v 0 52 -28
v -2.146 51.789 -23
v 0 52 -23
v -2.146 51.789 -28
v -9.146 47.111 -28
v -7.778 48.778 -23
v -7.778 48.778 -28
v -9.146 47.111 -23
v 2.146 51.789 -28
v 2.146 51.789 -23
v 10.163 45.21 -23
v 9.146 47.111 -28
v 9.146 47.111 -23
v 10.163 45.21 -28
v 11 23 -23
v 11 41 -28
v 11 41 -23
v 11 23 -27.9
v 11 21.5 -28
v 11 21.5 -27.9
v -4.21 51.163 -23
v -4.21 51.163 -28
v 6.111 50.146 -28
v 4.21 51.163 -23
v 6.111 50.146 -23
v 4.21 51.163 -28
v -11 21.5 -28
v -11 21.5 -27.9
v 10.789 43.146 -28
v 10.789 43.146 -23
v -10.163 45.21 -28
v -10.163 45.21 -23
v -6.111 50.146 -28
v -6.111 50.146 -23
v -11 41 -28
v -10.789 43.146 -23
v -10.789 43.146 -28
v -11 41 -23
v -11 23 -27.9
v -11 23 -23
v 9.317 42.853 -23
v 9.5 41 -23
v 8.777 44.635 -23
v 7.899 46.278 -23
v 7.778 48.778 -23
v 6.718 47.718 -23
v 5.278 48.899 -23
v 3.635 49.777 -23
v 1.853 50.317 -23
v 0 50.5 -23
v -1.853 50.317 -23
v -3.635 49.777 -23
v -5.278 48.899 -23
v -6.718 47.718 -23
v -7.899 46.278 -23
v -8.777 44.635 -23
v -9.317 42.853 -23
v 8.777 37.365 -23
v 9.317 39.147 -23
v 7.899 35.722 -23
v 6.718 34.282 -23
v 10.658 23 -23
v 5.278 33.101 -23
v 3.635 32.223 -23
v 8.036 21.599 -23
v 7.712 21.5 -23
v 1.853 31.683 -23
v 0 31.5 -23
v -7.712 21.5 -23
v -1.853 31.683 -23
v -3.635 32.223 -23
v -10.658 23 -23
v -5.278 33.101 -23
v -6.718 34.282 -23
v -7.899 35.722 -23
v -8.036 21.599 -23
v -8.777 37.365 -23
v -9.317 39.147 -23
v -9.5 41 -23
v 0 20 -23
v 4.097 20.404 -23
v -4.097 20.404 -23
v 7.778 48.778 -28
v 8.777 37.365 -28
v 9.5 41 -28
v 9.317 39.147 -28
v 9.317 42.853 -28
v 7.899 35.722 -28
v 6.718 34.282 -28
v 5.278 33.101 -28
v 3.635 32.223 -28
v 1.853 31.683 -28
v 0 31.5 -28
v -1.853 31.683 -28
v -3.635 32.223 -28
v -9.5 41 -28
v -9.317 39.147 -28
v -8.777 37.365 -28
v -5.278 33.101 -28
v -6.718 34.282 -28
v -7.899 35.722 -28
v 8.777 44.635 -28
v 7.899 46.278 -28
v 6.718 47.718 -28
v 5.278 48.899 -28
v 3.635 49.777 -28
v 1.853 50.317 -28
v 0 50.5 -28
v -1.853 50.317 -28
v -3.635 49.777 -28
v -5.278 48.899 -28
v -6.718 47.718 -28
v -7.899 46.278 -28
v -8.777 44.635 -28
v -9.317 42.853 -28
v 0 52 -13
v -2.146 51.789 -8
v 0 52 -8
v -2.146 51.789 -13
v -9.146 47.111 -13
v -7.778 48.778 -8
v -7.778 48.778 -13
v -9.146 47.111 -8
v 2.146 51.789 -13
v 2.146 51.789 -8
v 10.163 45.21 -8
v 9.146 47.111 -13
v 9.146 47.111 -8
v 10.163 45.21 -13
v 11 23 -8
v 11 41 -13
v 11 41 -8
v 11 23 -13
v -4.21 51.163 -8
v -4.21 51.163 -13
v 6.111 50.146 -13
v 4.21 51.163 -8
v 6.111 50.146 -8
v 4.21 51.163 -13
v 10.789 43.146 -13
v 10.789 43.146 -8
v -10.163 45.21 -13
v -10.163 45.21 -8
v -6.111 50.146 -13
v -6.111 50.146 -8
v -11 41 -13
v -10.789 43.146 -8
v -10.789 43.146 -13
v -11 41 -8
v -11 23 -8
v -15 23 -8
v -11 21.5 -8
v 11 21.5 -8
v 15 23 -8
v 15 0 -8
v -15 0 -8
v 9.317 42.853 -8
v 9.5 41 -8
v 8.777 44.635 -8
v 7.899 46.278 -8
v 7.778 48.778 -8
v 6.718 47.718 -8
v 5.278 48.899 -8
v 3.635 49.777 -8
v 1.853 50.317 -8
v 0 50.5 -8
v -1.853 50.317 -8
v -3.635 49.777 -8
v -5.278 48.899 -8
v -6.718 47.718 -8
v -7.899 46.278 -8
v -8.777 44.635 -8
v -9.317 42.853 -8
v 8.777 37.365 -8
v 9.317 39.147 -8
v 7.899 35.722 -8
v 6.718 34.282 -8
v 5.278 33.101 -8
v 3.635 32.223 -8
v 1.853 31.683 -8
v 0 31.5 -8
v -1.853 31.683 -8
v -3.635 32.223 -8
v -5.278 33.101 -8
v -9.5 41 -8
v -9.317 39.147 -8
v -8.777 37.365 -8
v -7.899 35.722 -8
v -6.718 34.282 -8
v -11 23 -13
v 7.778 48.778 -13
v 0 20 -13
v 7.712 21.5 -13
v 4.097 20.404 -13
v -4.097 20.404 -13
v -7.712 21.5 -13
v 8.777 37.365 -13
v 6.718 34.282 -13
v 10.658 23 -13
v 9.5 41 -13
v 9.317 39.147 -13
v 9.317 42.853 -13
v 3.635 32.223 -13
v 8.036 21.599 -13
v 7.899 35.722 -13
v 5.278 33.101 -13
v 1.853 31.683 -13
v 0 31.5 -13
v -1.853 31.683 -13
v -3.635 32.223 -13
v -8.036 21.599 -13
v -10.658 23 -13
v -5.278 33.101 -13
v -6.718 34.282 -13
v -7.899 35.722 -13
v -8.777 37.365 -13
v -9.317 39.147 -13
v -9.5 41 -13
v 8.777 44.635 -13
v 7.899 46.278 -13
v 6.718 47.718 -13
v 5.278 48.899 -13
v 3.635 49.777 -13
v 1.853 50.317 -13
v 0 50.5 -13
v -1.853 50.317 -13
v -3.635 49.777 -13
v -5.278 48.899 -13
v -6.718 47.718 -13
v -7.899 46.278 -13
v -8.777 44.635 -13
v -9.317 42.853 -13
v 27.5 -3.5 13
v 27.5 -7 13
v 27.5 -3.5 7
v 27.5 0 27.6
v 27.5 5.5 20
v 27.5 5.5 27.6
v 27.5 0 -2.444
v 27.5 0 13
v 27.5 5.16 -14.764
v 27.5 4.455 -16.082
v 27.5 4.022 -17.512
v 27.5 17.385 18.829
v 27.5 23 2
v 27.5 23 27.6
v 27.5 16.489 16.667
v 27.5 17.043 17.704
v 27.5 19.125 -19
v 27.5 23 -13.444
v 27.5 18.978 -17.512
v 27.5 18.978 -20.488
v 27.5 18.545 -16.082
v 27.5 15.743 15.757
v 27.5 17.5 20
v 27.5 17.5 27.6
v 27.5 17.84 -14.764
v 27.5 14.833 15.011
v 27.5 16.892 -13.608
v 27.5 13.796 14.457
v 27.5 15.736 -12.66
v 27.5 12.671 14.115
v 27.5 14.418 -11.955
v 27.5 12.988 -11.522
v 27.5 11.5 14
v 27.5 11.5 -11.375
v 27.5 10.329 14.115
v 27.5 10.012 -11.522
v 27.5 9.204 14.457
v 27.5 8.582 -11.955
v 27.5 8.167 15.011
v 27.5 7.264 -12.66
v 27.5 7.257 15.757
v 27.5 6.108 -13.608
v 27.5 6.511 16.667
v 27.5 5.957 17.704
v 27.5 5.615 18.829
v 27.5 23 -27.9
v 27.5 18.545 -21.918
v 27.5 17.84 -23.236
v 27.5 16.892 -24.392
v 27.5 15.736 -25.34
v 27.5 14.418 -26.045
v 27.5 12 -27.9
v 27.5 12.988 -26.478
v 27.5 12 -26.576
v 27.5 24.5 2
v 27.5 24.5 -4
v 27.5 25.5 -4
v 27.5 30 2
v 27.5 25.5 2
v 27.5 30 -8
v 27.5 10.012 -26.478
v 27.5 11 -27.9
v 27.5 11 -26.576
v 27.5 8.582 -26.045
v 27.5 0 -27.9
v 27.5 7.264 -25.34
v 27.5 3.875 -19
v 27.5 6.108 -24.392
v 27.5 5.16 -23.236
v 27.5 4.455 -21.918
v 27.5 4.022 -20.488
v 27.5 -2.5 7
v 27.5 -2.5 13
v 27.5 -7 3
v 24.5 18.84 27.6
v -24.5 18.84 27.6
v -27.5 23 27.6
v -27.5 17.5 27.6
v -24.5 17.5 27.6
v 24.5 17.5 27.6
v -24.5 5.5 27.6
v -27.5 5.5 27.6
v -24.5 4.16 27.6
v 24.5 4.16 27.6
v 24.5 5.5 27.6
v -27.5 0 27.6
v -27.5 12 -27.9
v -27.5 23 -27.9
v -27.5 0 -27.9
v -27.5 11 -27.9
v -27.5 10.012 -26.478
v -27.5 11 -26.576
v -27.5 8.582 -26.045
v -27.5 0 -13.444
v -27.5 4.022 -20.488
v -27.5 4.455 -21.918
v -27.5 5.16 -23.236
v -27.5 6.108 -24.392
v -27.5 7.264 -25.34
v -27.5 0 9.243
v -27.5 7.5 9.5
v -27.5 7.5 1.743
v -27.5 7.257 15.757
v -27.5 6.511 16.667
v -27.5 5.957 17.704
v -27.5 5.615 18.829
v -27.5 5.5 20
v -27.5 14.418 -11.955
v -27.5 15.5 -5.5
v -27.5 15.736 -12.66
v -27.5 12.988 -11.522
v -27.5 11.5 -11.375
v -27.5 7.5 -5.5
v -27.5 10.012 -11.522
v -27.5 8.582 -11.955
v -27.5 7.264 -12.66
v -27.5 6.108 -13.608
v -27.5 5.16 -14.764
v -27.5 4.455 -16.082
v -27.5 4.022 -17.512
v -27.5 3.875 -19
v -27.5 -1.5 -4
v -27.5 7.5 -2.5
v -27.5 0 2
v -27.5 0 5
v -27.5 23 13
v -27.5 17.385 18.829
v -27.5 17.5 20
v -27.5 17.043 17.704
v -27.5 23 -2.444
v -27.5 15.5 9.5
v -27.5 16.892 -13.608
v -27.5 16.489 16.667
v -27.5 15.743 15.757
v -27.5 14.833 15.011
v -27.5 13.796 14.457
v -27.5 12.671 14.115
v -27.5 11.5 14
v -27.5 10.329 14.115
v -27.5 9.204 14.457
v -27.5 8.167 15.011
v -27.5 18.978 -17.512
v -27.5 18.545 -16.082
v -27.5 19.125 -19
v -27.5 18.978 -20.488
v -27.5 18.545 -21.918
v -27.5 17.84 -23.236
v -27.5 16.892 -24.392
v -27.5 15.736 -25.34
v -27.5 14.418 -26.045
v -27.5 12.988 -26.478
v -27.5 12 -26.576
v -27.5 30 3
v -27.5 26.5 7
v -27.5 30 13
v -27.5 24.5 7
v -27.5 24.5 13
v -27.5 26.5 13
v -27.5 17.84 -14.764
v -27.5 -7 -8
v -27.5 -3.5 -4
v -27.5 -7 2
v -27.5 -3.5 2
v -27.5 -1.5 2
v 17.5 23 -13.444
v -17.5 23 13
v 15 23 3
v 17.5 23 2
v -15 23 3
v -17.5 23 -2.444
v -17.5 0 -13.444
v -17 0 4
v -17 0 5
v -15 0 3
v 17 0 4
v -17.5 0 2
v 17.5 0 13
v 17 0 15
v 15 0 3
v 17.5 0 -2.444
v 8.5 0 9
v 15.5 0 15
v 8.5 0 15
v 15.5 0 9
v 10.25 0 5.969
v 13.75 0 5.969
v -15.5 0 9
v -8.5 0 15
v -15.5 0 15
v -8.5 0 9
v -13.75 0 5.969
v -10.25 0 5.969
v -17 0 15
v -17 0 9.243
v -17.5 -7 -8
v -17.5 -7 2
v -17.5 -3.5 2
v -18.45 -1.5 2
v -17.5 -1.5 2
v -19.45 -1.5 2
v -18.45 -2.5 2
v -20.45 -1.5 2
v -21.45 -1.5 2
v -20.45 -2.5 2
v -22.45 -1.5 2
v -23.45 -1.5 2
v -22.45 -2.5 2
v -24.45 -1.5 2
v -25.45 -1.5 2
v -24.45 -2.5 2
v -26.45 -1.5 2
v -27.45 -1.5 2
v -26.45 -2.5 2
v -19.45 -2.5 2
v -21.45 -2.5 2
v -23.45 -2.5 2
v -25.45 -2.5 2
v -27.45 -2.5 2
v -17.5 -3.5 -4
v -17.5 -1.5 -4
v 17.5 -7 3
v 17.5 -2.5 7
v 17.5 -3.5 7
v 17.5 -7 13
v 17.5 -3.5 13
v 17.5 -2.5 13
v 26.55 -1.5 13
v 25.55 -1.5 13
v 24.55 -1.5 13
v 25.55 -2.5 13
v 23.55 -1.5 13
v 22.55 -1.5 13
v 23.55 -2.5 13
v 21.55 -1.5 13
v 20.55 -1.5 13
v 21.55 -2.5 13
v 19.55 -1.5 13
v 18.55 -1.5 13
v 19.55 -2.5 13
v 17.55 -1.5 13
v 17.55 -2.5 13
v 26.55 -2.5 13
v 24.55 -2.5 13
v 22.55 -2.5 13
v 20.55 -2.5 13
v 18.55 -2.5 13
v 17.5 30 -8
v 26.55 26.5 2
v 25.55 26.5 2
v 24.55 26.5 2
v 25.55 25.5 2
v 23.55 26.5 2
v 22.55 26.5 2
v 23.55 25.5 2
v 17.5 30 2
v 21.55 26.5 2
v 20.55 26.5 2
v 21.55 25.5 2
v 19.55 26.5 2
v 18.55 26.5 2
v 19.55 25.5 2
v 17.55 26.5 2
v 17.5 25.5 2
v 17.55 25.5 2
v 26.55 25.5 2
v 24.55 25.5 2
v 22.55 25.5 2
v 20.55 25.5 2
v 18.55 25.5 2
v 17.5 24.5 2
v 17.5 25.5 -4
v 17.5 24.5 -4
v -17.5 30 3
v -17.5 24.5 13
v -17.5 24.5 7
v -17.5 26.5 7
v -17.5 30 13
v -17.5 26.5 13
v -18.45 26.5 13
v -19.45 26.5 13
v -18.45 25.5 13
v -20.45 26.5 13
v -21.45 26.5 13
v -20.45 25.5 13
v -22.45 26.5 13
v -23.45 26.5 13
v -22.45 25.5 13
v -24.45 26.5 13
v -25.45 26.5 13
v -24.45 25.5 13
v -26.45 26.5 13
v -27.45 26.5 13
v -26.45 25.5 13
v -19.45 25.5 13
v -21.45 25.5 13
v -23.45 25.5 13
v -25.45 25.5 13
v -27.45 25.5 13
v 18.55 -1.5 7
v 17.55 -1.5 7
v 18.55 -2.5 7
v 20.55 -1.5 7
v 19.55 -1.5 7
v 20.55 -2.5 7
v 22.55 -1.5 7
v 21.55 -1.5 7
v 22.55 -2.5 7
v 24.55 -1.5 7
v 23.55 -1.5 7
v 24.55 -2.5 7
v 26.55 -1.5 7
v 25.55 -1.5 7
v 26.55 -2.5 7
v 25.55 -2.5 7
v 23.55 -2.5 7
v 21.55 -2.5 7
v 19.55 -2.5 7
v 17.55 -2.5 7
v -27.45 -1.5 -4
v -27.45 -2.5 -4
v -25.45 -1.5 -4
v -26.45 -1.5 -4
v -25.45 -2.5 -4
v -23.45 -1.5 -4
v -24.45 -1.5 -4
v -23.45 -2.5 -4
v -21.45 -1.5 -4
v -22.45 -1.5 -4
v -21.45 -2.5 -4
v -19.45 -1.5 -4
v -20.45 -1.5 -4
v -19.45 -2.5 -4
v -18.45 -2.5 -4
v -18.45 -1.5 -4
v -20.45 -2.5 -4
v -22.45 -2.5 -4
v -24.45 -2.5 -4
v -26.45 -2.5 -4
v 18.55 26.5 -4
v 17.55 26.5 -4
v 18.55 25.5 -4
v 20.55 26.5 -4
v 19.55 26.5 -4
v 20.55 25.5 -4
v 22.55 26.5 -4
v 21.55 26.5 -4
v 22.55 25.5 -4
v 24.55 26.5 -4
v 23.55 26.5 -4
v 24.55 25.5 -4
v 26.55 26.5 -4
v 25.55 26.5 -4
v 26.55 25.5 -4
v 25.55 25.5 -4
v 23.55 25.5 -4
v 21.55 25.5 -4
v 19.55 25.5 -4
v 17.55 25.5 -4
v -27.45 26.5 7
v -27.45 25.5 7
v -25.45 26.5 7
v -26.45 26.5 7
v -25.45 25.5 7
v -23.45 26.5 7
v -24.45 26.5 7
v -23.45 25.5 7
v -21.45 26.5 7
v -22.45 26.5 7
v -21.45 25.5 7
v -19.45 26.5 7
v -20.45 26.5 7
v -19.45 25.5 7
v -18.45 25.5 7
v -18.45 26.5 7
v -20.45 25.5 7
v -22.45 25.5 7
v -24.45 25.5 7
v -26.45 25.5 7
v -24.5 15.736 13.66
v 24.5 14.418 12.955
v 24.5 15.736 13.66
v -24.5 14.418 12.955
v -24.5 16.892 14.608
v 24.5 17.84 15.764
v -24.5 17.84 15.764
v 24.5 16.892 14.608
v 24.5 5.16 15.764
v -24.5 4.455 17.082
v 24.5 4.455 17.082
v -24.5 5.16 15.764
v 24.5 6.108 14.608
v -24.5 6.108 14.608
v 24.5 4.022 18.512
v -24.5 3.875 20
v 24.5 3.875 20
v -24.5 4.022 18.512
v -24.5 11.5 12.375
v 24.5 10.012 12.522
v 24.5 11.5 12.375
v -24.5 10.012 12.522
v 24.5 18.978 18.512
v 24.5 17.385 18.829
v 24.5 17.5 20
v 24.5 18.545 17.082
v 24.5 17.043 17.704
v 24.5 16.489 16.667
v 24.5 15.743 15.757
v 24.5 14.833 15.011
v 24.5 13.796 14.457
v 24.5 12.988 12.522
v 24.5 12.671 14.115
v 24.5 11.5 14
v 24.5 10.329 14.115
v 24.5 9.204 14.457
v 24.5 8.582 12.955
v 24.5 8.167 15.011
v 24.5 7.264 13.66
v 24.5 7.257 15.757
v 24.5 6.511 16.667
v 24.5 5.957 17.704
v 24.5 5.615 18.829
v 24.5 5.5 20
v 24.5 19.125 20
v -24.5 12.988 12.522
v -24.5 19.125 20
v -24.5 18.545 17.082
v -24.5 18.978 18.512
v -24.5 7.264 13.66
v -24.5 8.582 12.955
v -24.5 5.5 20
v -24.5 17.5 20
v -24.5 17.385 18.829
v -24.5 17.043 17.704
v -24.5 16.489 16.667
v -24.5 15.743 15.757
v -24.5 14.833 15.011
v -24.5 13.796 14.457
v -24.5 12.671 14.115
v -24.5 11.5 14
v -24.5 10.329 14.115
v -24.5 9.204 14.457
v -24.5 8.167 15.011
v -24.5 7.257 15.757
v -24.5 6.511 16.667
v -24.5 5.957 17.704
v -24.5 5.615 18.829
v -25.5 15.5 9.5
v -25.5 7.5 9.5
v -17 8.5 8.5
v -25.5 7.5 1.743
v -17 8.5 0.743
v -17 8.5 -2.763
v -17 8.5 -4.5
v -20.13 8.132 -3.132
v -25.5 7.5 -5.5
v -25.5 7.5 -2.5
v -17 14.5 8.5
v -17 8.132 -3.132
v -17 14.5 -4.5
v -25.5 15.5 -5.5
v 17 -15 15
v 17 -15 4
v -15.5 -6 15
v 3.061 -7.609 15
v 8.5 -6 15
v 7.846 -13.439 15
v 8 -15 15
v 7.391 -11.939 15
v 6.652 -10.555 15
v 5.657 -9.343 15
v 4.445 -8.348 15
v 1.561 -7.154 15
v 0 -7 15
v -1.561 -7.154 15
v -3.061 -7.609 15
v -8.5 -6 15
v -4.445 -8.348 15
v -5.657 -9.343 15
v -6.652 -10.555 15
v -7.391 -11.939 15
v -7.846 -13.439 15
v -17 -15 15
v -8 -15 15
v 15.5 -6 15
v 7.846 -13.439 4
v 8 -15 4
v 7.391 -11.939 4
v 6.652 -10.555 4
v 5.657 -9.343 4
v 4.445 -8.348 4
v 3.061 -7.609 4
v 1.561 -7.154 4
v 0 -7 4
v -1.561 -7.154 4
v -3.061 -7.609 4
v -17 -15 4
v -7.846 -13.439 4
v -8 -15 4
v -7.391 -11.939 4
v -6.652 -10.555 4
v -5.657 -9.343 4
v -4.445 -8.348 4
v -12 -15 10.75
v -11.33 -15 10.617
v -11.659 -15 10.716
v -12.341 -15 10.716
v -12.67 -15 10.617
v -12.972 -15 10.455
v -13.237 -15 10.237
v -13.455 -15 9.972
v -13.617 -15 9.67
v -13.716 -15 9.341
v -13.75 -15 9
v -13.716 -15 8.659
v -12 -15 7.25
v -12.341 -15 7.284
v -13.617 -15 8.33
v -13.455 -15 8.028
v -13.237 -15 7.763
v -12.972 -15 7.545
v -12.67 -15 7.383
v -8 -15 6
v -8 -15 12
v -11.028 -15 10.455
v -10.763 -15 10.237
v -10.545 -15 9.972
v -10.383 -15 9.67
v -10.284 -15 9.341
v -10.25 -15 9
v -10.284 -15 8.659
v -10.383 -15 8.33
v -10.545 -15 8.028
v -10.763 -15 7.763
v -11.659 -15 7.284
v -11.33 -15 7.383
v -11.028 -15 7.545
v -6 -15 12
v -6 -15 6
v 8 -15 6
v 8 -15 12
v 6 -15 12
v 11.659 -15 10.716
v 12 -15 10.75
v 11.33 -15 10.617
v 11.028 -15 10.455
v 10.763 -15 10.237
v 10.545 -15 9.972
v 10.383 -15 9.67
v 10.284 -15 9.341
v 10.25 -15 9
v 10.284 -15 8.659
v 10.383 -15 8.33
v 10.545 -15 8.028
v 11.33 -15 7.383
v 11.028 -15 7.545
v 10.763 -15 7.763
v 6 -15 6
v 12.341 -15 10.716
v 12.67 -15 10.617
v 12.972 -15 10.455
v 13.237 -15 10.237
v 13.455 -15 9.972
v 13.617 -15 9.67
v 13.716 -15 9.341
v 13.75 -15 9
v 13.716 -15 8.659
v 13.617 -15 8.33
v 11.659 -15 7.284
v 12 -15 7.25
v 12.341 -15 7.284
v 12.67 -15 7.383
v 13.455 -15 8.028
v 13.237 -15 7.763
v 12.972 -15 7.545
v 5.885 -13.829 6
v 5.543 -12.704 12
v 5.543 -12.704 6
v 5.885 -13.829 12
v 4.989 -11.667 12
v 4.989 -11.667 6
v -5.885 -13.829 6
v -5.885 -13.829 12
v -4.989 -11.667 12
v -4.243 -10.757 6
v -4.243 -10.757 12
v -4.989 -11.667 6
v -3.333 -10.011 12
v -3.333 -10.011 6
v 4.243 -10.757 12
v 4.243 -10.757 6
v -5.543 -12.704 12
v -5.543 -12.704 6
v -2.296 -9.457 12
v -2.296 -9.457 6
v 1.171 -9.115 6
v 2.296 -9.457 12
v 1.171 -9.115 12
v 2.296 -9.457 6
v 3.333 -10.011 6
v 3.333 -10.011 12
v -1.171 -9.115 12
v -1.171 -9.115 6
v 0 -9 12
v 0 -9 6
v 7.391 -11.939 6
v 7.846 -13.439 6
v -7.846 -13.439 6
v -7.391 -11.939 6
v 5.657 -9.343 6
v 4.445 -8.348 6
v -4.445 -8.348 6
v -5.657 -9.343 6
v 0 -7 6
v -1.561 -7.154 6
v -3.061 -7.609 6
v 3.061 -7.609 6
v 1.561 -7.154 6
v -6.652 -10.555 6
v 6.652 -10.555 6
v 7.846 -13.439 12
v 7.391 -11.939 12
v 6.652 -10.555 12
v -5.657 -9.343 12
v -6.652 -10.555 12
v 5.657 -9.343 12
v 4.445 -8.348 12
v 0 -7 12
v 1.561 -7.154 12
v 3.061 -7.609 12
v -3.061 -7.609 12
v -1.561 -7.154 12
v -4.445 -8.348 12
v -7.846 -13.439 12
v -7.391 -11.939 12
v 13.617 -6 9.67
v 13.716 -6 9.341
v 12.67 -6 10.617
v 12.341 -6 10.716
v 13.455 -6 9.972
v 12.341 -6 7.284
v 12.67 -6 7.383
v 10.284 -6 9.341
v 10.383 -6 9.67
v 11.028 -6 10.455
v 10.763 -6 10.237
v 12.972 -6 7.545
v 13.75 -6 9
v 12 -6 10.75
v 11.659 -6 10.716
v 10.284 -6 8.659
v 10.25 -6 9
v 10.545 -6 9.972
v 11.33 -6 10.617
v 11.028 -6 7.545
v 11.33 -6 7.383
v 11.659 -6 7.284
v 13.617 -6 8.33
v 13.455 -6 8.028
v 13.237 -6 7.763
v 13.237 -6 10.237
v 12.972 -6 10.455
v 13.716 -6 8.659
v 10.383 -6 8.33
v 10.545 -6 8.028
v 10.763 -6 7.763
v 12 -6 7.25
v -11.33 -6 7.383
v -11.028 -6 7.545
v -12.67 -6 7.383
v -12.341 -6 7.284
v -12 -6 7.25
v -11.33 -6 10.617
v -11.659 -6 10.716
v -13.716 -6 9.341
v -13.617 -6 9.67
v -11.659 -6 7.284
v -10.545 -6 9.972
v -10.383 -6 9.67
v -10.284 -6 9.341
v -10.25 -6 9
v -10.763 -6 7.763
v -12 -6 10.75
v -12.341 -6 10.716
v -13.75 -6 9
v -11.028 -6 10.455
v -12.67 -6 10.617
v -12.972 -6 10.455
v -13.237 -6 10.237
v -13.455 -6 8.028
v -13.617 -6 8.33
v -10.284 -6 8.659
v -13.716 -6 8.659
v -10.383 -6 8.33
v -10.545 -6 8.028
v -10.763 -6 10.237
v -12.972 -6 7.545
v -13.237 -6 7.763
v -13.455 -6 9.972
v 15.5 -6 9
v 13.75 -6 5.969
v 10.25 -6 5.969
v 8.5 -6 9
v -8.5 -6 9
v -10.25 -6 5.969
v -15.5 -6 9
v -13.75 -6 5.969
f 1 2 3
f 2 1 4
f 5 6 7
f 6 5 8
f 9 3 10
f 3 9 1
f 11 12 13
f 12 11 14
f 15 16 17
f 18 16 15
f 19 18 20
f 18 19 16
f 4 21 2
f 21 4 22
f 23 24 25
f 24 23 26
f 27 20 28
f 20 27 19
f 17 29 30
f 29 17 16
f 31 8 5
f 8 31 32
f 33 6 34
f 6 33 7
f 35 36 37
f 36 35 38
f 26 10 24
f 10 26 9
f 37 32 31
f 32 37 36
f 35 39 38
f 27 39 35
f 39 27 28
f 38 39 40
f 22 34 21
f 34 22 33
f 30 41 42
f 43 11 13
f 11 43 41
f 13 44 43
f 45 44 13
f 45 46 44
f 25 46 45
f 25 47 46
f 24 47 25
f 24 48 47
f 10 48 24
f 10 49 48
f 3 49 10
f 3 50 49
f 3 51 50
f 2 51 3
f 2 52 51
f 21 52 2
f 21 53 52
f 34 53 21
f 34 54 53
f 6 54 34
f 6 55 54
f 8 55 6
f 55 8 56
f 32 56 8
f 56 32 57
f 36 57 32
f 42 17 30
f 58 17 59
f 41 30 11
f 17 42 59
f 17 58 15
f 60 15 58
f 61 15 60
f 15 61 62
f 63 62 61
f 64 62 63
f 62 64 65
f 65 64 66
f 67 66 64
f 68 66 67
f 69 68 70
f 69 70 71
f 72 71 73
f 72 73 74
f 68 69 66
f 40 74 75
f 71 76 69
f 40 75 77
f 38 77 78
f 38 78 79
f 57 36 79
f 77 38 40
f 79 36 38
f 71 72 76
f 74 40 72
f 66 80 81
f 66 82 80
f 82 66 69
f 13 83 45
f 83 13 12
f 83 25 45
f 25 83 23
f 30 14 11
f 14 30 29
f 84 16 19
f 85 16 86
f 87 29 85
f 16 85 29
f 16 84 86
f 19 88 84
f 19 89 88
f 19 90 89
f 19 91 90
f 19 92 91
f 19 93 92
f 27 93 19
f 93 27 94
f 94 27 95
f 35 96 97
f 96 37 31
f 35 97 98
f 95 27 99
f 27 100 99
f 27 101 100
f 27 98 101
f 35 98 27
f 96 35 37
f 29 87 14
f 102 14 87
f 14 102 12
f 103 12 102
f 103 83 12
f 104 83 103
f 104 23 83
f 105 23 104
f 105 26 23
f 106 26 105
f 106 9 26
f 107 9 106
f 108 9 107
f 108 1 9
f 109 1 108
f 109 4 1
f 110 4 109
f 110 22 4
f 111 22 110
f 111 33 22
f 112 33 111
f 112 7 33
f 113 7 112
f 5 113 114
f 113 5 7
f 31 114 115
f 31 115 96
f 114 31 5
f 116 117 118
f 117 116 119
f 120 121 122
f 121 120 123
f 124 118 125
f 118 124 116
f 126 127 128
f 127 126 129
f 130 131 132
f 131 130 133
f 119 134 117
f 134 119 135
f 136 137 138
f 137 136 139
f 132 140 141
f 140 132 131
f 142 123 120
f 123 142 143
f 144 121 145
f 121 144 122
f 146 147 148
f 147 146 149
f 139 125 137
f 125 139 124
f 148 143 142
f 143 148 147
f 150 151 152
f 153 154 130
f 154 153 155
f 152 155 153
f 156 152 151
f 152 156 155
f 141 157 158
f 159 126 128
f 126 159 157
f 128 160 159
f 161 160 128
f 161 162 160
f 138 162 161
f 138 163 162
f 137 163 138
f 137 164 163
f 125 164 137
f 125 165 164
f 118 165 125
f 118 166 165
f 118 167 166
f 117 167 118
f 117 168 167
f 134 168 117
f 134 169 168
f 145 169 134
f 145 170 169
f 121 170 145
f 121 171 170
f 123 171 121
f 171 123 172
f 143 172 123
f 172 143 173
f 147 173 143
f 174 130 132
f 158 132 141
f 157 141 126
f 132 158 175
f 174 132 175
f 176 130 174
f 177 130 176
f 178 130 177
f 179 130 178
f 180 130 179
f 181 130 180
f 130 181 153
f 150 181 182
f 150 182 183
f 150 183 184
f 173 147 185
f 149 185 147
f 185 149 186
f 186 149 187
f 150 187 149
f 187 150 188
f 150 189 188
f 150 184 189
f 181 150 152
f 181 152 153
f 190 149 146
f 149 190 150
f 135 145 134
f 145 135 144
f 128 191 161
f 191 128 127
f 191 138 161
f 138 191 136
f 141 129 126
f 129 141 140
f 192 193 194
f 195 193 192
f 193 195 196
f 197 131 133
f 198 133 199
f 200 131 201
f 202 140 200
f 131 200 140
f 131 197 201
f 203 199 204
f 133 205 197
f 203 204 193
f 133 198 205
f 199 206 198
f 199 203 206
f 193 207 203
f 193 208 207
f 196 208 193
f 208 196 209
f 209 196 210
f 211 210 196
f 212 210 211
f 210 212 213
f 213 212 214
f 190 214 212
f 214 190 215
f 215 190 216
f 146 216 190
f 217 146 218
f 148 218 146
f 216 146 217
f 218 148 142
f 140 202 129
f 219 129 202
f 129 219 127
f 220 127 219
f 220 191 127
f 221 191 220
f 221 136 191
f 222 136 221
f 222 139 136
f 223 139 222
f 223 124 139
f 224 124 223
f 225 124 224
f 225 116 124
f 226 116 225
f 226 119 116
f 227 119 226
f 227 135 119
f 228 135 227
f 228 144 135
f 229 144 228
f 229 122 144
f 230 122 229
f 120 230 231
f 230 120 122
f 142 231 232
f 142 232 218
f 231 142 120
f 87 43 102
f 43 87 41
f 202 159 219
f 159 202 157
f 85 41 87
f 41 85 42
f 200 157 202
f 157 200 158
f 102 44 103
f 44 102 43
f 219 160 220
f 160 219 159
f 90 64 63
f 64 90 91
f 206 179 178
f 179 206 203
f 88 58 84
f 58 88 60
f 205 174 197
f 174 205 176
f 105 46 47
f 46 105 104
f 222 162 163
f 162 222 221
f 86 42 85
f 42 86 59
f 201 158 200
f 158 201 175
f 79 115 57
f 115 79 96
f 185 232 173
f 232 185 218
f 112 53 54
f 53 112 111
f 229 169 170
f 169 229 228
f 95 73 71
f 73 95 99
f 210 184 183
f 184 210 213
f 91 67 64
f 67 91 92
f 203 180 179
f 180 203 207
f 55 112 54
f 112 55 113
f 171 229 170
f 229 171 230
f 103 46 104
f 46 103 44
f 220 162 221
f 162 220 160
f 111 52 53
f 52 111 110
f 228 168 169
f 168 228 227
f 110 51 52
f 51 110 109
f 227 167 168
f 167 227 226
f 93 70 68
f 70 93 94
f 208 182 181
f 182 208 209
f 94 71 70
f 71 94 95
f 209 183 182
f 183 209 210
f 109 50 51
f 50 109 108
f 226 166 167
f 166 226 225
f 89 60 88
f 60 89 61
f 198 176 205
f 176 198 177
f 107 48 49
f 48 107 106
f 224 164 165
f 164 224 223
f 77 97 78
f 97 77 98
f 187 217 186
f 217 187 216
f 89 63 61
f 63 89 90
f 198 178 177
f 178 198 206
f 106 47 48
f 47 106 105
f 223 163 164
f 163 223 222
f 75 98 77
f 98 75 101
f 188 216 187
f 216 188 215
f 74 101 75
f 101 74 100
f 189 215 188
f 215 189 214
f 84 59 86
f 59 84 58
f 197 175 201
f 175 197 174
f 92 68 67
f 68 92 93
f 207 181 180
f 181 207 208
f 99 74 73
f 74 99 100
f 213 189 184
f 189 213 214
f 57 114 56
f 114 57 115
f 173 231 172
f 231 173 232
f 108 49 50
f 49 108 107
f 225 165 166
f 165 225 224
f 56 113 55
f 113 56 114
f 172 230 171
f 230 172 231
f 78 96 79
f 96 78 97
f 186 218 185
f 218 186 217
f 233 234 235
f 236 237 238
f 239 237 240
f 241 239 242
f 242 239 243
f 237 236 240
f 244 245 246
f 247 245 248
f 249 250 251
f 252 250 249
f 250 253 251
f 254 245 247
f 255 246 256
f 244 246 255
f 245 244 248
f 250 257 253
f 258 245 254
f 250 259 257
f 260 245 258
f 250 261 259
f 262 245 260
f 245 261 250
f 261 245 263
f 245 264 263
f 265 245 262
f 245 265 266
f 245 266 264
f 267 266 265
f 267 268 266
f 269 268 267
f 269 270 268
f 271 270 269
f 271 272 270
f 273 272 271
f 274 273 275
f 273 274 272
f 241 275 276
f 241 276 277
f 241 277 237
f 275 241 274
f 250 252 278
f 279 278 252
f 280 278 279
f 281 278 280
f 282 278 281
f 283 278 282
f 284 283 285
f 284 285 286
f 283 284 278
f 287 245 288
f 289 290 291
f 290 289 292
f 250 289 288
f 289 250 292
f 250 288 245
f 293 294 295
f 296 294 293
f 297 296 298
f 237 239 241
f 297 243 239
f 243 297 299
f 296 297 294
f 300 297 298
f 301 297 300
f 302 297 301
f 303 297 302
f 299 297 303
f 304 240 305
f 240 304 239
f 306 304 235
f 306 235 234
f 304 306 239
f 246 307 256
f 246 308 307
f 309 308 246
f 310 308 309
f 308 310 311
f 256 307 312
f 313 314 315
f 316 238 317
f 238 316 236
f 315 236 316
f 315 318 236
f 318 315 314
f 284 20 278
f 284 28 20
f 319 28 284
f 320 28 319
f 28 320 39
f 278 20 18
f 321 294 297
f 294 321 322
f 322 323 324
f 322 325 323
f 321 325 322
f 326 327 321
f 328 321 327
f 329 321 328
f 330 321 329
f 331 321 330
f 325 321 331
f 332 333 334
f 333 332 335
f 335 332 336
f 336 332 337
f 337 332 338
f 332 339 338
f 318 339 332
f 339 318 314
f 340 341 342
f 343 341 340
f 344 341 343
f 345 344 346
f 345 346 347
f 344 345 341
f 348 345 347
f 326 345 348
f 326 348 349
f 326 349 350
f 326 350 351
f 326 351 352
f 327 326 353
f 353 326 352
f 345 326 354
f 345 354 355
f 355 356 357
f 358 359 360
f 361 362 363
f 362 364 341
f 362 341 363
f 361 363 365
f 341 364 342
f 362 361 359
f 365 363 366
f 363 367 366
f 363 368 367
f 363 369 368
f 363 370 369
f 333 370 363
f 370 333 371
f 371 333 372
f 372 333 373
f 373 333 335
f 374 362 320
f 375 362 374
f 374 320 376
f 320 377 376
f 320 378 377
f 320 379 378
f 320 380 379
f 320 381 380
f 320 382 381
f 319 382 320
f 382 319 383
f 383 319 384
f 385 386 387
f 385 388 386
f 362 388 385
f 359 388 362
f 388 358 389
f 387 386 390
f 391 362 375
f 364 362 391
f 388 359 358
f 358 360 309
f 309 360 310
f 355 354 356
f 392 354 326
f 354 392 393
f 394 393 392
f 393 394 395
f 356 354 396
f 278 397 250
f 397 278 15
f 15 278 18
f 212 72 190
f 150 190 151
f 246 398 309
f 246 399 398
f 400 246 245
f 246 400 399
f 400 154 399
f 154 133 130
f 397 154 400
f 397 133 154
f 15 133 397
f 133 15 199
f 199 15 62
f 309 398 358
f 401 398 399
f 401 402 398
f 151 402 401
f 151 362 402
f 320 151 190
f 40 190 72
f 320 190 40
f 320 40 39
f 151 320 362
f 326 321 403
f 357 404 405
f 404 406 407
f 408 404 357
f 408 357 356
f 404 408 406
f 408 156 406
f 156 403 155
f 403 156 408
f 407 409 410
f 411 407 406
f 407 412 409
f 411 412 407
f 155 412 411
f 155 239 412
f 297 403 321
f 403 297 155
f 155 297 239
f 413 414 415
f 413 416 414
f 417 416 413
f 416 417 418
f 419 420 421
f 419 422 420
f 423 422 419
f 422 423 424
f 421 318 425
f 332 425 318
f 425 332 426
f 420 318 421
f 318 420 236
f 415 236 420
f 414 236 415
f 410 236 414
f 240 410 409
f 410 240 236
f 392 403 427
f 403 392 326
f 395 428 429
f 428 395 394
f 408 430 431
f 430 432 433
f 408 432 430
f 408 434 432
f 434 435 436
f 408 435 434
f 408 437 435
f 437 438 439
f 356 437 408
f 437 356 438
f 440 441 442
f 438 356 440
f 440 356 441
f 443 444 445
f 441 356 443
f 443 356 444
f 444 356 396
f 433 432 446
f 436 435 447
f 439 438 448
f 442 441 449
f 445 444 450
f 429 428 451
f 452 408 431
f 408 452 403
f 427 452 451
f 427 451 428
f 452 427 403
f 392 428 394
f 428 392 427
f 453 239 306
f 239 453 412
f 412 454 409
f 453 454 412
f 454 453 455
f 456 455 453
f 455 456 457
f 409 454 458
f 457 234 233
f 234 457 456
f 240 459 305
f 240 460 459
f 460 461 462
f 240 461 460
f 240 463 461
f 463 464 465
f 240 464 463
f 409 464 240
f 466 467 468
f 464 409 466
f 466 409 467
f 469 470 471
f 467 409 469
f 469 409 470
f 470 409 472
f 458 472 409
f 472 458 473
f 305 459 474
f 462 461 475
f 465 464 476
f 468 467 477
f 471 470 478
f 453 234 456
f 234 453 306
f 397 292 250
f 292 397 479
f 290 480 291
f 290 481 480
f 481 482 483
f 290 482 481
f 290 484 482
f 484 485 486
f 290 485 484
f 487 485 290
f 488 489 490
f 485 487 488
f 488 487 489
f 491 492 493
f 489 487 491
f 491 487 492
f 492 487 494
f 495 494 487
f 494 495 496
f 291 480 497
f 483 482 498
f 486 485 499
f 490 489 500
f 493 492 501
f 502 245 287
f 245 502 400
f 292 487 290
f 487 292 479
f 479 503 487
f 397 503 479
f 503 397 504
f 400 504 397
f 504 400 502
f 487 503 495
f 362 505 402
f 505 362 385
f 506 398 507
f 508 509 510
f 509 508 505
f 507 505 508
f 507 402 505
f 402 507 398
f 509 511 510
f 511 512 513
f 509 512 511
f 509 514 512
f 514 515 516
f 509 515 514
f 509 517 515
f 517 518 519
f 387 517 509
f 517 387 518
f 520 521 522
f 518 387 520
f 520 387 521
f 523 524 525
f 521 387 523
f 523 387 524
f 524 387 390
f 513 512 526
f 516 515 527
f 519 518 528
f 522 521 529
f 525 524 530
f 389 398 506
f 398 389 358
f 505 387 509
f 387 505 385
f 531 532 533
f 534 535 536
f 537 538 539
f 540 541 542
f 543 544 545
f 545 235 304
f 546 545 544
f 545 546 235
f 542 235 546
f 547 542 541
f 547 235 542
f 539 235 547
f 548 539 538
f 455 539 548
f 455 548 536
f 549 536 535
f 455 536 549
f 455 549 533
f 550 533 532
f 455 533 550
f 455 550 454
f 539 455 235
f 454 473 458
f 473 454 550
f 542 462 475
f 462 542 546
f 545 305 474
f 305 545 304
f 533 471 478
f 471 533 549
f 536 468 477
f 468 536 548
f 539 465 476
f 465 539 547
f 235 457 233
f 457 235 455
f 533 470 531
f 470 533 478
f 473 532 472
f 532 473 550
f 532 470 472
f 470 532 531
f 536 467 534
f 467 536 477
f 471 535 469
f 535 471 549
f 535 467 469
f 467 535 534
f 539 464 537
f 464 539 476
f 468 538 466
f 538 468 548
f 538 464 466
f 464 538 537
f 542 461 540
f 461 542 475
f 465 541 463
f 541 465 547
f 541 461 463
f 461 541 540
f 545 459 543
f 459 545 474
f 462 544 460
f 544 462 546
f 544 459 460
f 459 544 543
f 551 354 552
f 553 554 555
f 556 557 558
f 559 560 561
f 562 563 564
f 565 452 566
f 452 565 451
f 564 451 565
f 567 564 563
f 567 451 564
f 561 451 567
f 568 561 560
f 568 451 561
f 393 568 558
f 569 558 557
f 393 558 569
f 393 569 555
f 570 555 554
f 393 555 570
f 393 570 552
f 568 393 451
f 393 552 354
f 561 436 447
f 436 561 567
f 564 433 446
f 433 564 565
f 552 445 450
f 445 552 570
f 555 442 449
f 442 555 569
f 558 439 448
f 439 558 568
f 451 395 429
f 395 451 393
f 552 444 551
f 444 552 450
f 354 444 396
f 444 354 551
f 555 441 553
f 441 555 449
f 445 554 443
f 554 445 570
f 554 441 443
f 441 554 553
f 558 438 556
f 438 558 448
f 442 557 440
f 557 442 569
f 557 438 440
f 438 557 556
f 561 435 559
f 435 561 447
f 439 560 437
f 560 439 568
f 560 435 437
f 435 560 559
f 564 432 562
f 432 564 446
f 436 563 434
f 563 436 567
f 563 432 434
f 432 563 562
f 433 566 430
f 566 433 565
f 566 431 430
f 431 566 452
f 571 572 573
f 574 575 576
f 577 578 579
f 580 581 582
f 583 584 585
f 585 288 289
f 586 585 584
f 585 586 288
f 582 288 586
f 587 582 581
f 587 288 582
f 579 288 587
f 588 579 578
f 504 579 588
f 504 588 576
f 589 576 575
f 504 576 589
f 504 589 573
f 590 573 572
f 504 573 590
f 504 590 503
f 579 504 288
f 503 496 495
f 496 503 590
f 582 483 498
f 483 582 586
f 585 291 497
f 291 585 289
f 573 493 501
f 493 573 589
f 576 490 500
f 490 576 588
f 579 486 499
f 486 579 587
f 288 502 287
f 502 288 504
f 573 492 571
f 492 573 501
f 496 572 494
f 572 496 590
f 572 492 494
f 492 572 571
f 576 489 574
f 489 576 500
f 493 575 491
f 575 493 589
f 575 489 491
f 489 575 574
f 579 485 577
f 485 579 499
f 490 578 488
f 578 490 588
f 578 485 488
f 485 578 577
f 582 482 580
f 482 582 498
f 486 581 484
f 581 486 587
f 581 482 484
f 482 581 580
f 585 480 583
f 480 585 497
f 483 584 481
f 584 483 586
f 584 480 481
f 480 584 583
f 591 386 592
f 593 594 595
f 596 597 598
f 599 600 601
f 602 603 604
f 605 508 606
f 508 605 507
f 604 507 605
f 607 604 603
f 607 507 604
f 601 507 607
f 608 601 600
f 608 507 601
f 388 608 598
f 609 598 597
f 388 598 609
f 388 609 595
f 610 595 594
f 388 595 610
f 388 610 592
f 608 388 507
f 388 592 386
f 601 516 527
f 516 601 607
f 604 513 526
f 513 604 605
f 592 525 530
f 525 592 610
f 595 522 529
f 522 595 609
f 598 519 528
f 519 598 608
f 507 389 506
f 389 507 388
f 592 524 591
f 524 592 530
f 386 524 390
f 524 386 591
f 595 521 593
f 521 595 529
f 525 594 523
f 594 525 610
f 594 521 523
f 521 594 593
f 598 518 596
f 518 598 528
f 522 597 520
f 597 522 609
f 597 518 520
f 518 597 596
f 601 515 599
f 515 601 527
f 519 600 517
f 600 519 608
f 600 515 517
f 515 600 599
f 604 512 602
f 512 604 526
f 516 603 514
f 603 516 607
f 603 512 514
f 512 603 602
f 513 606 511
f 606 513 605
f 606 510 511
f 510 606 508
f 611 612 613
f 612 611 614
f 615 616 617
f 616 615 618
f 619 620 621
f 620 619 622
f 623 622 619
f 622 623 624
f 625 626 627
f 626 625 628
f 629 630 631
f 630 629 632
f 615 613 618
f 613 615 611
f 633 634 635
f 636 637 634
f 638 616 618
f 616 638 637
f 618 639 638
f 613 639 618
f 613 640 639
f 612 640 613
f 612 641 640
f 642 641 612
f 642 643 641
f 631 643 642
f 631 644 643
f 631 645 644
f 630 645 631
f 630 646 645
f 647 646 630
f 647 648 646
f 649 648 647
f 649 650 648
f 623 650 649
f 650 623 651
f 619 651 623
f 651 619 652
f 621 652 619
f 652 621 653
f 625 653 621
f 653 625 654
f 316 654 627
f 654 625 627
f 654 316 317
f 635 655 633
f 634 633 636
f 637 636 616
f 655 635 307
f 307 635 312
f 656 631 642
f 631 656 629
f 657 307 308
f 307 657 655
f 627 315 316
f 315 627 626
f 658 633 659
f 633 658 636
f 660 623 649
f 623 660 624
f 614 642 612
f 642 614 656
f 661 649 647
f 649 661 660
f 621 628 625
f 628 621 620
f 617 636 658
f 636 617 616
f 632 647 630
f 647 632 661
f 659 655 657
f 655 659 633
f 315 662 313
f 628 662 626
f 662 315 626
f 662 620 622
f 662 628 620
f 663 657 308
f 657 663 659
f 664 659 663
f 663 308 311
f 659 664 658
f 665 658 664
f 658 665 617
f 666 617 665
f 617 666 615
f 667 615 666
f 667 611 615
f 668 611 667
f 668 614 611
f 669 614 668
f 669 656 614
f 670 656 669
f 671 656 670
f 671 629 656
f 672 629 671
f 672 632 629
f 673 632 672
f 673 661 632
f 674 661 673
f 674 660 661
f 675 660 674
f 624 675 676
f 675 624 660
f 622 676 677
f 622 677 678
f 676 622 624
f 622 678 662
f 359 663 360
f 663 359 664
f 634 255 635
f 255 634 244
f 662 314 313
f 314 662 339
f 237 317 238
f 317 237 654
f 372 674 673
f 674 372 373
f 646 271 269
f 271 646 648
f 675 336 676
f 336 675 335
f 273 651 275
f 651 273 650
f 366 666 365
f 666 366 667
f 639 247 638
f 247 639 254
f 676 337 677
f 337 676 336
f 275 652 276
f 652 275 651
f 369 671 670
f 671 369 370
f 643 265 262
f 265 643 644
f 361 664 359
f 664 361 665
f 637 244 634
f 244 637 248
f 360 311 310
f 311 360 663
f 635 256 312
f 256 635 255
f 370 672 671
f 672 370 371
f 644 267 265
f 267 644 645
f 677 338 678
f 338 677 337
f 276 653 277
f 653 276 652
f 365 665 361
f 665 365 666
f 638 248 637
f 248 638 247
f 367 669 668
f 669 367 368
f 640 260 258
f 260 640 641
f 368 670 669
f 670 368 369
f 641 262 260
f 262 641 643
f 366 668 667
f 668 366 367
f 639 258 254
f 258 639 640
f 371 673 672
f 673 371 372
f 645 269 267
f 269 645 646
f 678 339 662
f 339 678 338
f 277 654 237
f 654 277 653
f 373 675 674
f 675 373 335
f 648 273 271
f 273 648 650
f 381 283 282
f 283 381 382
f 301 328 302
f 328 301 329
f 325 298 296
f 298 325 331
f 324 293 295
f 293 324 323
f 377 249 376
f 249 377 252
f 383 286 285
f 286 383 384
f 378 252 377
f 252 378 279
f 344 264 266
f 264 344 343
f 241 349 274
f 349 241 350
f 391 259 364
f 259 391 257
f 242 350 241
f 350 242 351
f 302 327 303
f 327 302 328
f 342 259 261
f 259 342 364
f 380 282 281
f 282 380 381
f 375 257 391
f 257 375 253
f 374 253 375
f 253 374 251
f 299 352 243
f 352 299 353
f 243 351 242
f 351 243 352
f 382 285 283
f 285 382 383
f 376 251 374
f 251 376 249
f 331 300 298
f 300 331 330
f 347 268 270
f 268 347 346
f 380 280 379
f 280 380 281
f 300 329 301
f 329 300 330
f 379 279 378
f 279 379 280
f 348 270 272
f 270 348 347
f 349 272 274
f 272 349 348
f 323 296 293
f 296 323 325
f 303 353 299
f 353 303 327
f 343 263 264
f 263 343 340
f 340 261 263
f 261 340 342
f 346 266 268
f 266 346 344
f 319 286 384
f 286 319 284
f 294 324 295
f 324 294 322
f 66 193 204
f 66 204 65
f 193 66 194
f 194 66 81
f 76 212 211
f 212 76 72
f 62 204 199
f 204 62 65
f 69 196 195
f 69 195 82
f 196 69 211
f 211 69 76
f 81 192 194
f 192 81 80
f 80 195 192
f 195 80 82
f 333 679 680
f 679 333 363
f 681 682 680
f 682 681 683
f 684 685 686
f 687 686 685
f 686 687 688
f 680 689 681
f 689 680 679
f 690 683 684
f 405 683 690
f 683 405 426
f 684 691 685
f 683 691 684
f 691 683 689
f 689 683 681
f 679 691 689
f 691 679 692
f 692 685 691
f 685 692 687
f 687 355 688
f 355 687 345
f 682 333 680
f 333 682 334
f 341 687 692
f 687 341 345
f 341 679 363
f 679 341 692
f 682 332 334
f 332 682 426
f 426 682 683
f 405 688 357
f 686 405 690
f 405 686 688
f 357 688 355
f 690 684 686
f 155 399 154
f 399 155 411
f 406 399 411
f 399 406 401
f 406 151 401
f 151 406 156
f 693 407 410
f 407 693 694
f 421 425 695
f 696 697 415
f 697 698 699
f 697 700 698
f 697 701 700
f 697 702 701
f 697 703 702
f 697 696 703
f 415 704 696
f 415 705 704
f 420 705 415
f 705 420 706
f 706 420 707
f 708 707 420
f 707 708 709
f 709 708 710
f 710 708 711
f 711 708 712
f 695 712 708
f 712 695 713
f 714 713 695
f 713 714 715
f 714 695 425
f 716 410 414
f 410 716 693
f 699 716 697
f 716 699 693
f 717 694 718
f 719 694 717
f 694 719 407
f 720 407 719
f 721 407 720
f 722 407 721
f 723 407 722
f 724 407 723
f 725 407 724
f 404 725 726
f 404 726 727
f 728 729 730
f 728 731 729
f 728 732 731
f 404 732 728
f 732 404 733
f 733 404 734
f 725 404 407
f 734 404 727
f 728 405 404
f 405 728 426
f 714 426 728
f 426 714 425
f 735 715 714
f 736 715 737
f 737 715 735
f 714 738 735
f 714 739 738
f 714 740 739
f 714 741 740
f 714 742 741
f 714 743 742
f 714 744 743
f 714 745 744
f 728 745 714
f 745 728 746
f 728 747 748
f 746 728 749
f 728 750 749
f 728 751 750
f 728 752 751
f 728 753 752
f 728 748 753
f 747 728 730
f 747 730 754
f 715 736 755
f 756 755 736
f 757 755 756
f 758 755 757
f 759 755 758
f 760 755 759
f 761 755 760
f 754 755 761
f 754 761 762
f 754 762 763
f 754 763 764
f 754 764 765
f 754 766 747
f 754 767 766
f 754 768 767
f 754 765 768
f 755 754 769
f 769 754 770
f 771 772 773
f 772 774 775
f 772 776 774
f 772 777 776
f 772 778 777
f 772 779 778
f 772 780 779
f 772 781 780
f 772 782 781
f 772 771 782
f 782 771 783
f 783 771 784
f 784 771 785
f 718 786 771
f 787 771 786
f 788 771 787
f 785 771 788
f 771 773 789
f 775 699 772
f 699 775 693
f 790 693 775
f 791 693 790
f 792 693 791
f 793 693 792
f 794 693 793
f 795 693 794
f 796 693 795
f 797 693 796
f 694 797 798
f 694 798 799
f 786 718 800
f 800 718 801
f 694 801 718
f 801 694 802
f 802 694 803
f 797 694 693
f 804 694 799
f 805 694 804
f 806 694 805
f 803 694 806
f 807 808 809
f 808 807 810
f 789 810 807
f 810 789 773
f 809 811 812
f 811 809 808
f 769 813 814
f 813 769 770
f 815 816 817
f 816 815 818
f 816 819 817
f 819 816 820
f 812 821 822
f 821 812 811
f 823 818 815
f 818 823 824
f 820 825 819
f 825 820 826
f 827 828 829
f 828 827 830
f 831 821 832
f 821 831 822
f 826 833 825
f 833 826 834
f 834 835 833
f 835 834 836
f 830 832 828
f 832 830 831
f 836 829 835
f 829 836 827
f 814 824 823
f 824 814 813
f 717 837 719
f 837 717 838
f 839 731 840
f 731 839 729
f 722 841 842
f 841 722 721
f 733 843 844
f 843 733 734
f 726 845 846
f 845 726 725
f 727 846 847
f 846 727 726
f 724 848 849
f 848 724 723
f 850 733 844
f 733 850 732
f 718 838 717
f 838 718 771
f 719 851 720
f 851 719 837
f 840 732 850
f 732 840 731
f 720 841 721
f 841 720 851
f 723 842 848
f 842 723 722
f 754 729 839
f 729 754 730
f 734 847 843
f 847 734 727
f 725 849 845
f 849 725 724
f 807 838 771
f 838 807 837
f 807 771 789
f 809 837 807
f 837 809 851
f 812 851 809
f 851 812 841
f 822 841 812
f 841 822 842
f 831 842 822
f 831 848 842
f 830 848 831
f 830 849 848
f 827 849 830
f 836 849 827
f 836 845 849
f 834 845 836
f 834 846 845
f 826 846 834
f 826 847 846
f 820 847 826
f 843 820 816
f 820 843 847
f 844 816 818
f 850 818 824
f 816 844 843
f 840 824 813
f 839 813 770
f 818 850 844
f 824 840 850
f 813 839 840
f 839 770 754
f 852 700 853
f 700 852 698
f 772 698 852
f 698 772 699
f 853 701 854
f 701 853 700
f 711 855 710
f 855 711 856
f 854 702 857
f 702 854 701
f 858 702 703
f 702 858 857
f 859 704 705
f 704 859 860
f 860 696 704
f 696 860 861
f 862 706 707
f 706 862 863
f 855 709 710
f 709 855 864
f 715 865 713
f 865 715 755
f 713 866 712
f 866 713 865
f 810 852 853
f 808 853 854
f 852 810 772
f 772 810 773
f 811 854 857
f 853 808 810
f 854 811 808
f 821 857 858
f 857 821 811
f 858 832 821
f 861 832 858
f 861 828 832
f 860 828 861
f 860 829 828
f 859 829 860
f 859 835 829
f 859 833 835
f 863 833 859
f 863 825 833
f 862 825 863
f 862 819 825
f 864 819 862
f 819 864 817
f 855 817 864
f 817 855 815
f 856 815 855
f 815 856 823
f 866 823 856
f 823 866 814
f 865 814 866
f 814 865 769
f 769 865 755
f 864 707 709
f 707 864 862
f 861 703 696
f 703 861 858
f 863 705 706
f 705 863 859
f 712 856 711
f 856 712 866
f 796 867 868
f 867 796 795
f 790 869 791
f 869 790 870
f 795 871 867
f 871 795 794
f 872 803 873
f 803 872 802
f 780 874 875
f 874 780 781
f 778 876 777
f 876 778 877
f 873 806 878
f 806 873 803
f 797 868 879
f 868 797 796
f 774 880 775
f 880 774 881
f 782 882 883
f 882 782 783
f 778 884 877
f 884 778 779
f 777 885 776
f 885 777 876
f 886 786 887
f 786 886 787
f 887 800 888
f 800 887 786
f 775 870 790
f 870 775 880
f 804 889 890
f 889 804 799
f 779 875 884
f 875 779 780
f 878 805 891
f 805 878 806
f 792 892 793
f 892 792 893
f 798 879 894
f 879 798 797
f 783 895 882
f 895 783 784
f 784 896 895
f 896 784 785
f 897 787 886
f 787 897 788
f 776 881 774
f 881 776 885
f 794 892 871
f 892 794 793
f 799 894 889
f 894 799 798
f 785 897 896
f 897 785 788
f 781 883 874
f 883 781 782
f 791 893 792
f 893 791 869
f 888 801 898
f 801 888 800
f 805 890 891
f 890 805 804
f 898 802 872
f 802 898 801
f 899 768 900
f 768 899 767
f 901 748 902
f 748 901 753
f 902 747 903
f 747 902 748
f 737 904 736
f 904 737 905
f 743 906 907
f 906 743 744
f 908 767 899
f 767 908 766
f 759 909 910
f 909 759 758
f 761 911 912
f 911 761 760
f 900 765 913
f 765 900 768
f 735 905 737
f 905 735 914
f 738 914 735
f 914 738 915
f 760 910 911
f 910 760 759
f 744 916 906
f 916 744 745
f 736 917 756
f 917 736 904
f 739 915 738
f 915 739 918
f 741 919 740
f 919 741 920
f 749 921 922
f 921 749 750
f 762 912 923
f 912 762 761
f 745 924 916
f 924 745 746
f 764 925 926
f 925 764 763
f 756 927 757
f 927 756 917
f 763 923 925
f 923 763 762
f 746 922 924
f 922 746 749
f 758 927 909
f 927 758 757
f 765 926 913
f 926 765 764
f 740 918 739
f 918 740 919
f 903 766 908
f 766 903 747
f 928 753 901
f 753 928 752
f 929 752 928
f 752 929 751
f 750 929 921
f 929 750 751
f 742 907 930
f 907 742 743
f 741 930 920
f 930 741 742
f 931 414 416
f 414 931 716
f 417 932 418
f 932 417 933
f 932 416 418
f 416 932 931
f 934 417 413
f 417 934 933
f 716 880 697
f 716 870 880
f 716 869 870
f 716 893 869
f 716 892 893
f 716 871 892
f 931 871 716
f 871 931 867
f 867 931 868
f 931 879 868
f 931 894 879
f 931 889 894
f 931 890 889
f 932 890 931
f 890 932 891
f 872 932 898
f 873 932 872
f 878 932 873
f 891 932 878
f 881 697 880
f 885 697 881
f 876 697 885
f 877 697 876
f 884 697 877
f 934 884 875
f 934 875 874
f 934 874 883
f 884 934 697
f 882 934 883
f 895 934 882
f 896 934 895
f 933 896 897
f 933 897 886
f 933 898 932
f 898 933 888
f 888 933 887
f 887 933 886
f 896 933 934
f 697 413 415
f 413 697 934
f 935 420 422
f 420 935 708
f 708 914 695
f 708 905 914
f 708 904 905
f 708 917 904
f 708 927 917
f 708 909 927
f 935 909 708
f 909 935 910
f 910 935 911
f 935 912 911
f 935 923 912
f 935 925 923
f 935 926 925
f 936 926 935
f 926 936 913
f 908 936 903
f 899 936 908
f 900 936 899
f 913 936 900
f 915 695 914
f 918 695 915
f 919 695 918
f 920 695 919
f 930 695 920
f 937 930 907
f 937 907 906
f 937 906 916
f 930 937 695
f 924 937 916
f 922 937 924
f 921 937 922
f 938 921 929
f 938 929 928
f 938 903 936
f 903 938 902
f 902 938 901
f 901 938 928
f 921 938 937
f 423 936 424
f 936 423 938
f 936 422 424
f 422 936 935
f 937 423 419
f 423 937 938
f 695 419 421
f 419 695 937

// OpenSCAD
$fn=32;
// si estos valores se ponen en 0, queda listo para el volcano
height_fusor=-5;
height_fusor_fan=-8.5;
module carrito(){
difference(){
union(){
hull(){
translate([0,61-25+5,-28])cylinder(r=22/2,h=5);
translate([0,22,-28+2.5])cube([22,1,5],center=true);
}
translate([0,0,15])
hull(){
translate([0,61-25+5,-28])cylinder(r=22/2,h=5);
translate([0,22,-28+2.5])cube([22,1,5],center=true);
}}

translate([0,61-25+5,-30])cylinder(r=19/2,h=50);
}
difference(){
union(){
translate([0,11.5,-2.65+5/2])cube([55,23,50.5+5],center=true);
hull(){
translate([-22.5,-2,-3])cube([10,10,10],center=true);
translate([-22.5,2.5,-3-7])cube([10,1,10],center=true);
}
translate([45,0,11])
hull(){
translate([-22.5,-2,-3])cube([10,10,10],center=true);
translate([-22.5,2.5,-3-7])cube([10,1,10],center=true);
}
translate([0,23,0])
rotate([0,0,180])
hull(){
translate([-22.5,-2,-3])cube([10,10,10],center=true);
translate([-22.5,2.5,-3-7])cube([10,1,10],center=true);
}
translate([-45,23,11])
rotate([0,0,180])
hull(){
translate([-22.5,-2,-3])cube([10,10,10],center=true);
translate([-22.5,2.5,-3-7])cube([10,1,10],center=true);
}
}
hull(){
    translate([0,11.5,20])rotate([0,90,0])cylinder(r=15.25/2,h=24*2+1,center=true);
    translate([0,11.5,30])rotate([0,90,0])cylinder(r=14.5/2,h=24*2+1,center=true);
}
hull(){
    translate([0,11.5,20])rotate([0,90,0])cylinder(r=12/2,h=80,center=true);
    translate([0,11.5,30])rotate([0,90,0])cylinder(r=12/2,h=80,center=true);
}
translate([0,11.5,-19])rotate([0,90,0])cylinder(r=15.25/2,h=80,center=true);

translate([0,0,-3])agarrecorrea();
translate([-46,0,-11-3])agarrecorrea();

translate([0,28,-11-3])agarrecorrea();
translate([-46,28,-3])agarrecorrea();
translate([0,3+17/2,-25])cube([100,1,10],center=true);
translate([0,61-25+5,-20.5-2.5])cylinder(r=21,h=10);

translate([8,0,0])
hull(){
translate([-30,11.5,2])color("red")cube([10,6,13],center=true);
translate([-30-5,11.5,2])color("red")cube([3,8,15],center=true);
}
translate([8,0,5])rotate([-45,0,0])translate([-40,-3.5,0])cube([15,15,3]);
translate([0,0,height_fusor/2])
cube([30,50,16+height_fusor],center=true);
}

module agarrecorrea(){

translate([0.55,0,-1]){
color("blue")
translate([15,-7+3.5,11])
cube([15,1,10]);

color("blue")translate([15,-7+3.5+0.5,11])cube([1,1.5,10]);
color("blue")translate([15+2,-7+3.5+0.5,11])cube([1,1.5,10]);
color("blue")translate([15+4,-7+3.5+0.5,11])cube([1,1.5,10]);
color("blue")translate([15+6,-7+3.5+0.5,11])cube([1,1.5,10]);
color("blue")translate([15+8,-7+3.5+0.5,11])cube([1,1.5,10]);
color("blue")translate([15+10,-7+3.5+0.5,11])cube([1,1.5,10]);
color("blue")translate([15+12,-7+3.5+0.5,11])cube([1,1.5,10]);
color("blue")translate([15+14,-7+3.5+0.5,11])cube([1,1.5,10]);
}
}
translate([0,0,height_fusor])
difference(){
    translate([0,-7.5,14.5])color("red")cube([34,15,11],center=true);

    translate([0,-15,0])cylinder(r=6,h=30);
    translate([0,-15,1])cylinder(r=8,h=10);
    translate([0,-15,1+10+6])cylinder(r=8,h=10);

    translate([12,1,14])rotate([90,0,0])cylinder(r=3.5/2,h=30);
    translate([-12,1,14])rotate([90,0,0])cylinder(r=3.5/2,h=30);

    hull(){
        translate([12,1,14])rotate([90,0,0])cylinder(r=7/2,h=7,$fn=6);
        translate([12,1,30])rotate([90,0,0])cylinder(r=7/2,h=7,$fn=6);
    }
    hull(){
        translate([-12,1,14])rotate([90,0,0])cylinder(r=7/2,h=7,$fn=6);
        translate([-12,1,30])rotate([90,0,0])cylinder(r=7/2,h=7,$fn=6);
    }
}
}


module soporte_disipador(){
translate([0,-30-20+50,-15])
rotate([0,0,180])
translate([0,-20,15])
difference(){
    translate([0,-7.5+3,14.5])color("red")cube([34,12+5,11],center=true);

    translate([0,-15,0])cylinder(r=6,h=30);
    translate([0,-15,1])cylinder(r=8,h=10);
    translate([0,-15,1+10+6])cylinder(r=8,h=10);
    hull(){
        translate([0,0,14])rotate([90,0,0])cylinder(r=7/2,h=5,$fn=6);
        translate([0,0,0+5])rotate([90,0,0])cylinder(r=7/2,h=5,$fn=6);
    }
    translate([0,0,14])rotate([90,0,0])cylinder(r=4/2,h=40,center=true);
    translate([12,1,14])rotate([90,0,0])cylinder(r=3.5/2,h=100,center=true);
    translate([-12,1,14])rotate([90,0,0])cylinder(r=3.5/2,h=100,center=true);
    translate([12,1+43,14])rotate([90,0,0])cylinder(r=8/2,h=100,center=true);
    translate([-12,1+43,14])rotate([90,0,0])cylinder(r=8/2,h=100,center=true);
}
}




module torus(a,b){
R1=a;

R2=b;
    
RA=R1      /2;           // Radius   of  Torus
RB=R2      /2 - R1/2 ;     // Radius   of  Torus overall 

rotate_extrude(convexity = 10) // the value is the sides the finer
translate([RB, 0, 0])
circle(r = RA); // the value is the sides
}

module layerfan(){
translate([0,-15,-28-23+10])
rotate([0,0,0])
difference(){
    translate([0,0,0])///por aca
    union(){
        translate([0,0,2-height_fusor_fan])torus(9,60+10);
        translate([0,-35+11.5-5,0+15+50])cube([23,16,5+4],center=true);
        hull(){
            translate([0,-35+11.5-5,-5+15+2+50-6+4])cube([23+4+7,16+4,12],center=true);
            
            translate([0,-29,4+2-height_fusor_fan])rotate([0,0,0])rotate([0,90,0])cylinder(r=8/2,h=23+4,center=true);
        
        }
        translate([12,-7-7-5+5,55+4])rotate([90,0,0])cylinder(r=7.5/2,h=010);
        translate([-12,-7-7-5+5,55+4])rotate([90,0,0])cylinder(r=7.5/2,h=10);
    }
    
translate([0,-30,55+4])rotate([90,0,0])cylinder(r=4/2,h=80,center=true);
    
    translate([0,2,-20-height_fusor_fan])cylinder(r1=10,r2=28+5-2,h=20);
    translate([0,0,2-height_fusor_fan])torus(6,60-2+10-2);
    
    
        
        hull(){
            translate([0,-35+11.5-5,0+15+50-height_fusor_fan])cube([19,12,5+10],center=true);
            translate([0,-29,2-height_fusor_fan])rotate([0,0,0])rotate([0,90,0])cylinder(r=5/2,h=23,center=true);
        }
    
}
}

module e3d_volcano(){
translate([-18.2,17.2,-49])rotate([90,0,0])color("blue")import("Stl_Importados/E3D_Volcano_1.75mm_0.8mm_Hotend_Assembly_fixed.STL");
translate([0,-15,-28-23])color("red")cylinder(r=1,h=50);
}

//e3d_volcano();
carrito();
//translate([0,-50,height_fusor])soporte_disipador();
//translate([0,0,-4+height_fusor])layerfan();
